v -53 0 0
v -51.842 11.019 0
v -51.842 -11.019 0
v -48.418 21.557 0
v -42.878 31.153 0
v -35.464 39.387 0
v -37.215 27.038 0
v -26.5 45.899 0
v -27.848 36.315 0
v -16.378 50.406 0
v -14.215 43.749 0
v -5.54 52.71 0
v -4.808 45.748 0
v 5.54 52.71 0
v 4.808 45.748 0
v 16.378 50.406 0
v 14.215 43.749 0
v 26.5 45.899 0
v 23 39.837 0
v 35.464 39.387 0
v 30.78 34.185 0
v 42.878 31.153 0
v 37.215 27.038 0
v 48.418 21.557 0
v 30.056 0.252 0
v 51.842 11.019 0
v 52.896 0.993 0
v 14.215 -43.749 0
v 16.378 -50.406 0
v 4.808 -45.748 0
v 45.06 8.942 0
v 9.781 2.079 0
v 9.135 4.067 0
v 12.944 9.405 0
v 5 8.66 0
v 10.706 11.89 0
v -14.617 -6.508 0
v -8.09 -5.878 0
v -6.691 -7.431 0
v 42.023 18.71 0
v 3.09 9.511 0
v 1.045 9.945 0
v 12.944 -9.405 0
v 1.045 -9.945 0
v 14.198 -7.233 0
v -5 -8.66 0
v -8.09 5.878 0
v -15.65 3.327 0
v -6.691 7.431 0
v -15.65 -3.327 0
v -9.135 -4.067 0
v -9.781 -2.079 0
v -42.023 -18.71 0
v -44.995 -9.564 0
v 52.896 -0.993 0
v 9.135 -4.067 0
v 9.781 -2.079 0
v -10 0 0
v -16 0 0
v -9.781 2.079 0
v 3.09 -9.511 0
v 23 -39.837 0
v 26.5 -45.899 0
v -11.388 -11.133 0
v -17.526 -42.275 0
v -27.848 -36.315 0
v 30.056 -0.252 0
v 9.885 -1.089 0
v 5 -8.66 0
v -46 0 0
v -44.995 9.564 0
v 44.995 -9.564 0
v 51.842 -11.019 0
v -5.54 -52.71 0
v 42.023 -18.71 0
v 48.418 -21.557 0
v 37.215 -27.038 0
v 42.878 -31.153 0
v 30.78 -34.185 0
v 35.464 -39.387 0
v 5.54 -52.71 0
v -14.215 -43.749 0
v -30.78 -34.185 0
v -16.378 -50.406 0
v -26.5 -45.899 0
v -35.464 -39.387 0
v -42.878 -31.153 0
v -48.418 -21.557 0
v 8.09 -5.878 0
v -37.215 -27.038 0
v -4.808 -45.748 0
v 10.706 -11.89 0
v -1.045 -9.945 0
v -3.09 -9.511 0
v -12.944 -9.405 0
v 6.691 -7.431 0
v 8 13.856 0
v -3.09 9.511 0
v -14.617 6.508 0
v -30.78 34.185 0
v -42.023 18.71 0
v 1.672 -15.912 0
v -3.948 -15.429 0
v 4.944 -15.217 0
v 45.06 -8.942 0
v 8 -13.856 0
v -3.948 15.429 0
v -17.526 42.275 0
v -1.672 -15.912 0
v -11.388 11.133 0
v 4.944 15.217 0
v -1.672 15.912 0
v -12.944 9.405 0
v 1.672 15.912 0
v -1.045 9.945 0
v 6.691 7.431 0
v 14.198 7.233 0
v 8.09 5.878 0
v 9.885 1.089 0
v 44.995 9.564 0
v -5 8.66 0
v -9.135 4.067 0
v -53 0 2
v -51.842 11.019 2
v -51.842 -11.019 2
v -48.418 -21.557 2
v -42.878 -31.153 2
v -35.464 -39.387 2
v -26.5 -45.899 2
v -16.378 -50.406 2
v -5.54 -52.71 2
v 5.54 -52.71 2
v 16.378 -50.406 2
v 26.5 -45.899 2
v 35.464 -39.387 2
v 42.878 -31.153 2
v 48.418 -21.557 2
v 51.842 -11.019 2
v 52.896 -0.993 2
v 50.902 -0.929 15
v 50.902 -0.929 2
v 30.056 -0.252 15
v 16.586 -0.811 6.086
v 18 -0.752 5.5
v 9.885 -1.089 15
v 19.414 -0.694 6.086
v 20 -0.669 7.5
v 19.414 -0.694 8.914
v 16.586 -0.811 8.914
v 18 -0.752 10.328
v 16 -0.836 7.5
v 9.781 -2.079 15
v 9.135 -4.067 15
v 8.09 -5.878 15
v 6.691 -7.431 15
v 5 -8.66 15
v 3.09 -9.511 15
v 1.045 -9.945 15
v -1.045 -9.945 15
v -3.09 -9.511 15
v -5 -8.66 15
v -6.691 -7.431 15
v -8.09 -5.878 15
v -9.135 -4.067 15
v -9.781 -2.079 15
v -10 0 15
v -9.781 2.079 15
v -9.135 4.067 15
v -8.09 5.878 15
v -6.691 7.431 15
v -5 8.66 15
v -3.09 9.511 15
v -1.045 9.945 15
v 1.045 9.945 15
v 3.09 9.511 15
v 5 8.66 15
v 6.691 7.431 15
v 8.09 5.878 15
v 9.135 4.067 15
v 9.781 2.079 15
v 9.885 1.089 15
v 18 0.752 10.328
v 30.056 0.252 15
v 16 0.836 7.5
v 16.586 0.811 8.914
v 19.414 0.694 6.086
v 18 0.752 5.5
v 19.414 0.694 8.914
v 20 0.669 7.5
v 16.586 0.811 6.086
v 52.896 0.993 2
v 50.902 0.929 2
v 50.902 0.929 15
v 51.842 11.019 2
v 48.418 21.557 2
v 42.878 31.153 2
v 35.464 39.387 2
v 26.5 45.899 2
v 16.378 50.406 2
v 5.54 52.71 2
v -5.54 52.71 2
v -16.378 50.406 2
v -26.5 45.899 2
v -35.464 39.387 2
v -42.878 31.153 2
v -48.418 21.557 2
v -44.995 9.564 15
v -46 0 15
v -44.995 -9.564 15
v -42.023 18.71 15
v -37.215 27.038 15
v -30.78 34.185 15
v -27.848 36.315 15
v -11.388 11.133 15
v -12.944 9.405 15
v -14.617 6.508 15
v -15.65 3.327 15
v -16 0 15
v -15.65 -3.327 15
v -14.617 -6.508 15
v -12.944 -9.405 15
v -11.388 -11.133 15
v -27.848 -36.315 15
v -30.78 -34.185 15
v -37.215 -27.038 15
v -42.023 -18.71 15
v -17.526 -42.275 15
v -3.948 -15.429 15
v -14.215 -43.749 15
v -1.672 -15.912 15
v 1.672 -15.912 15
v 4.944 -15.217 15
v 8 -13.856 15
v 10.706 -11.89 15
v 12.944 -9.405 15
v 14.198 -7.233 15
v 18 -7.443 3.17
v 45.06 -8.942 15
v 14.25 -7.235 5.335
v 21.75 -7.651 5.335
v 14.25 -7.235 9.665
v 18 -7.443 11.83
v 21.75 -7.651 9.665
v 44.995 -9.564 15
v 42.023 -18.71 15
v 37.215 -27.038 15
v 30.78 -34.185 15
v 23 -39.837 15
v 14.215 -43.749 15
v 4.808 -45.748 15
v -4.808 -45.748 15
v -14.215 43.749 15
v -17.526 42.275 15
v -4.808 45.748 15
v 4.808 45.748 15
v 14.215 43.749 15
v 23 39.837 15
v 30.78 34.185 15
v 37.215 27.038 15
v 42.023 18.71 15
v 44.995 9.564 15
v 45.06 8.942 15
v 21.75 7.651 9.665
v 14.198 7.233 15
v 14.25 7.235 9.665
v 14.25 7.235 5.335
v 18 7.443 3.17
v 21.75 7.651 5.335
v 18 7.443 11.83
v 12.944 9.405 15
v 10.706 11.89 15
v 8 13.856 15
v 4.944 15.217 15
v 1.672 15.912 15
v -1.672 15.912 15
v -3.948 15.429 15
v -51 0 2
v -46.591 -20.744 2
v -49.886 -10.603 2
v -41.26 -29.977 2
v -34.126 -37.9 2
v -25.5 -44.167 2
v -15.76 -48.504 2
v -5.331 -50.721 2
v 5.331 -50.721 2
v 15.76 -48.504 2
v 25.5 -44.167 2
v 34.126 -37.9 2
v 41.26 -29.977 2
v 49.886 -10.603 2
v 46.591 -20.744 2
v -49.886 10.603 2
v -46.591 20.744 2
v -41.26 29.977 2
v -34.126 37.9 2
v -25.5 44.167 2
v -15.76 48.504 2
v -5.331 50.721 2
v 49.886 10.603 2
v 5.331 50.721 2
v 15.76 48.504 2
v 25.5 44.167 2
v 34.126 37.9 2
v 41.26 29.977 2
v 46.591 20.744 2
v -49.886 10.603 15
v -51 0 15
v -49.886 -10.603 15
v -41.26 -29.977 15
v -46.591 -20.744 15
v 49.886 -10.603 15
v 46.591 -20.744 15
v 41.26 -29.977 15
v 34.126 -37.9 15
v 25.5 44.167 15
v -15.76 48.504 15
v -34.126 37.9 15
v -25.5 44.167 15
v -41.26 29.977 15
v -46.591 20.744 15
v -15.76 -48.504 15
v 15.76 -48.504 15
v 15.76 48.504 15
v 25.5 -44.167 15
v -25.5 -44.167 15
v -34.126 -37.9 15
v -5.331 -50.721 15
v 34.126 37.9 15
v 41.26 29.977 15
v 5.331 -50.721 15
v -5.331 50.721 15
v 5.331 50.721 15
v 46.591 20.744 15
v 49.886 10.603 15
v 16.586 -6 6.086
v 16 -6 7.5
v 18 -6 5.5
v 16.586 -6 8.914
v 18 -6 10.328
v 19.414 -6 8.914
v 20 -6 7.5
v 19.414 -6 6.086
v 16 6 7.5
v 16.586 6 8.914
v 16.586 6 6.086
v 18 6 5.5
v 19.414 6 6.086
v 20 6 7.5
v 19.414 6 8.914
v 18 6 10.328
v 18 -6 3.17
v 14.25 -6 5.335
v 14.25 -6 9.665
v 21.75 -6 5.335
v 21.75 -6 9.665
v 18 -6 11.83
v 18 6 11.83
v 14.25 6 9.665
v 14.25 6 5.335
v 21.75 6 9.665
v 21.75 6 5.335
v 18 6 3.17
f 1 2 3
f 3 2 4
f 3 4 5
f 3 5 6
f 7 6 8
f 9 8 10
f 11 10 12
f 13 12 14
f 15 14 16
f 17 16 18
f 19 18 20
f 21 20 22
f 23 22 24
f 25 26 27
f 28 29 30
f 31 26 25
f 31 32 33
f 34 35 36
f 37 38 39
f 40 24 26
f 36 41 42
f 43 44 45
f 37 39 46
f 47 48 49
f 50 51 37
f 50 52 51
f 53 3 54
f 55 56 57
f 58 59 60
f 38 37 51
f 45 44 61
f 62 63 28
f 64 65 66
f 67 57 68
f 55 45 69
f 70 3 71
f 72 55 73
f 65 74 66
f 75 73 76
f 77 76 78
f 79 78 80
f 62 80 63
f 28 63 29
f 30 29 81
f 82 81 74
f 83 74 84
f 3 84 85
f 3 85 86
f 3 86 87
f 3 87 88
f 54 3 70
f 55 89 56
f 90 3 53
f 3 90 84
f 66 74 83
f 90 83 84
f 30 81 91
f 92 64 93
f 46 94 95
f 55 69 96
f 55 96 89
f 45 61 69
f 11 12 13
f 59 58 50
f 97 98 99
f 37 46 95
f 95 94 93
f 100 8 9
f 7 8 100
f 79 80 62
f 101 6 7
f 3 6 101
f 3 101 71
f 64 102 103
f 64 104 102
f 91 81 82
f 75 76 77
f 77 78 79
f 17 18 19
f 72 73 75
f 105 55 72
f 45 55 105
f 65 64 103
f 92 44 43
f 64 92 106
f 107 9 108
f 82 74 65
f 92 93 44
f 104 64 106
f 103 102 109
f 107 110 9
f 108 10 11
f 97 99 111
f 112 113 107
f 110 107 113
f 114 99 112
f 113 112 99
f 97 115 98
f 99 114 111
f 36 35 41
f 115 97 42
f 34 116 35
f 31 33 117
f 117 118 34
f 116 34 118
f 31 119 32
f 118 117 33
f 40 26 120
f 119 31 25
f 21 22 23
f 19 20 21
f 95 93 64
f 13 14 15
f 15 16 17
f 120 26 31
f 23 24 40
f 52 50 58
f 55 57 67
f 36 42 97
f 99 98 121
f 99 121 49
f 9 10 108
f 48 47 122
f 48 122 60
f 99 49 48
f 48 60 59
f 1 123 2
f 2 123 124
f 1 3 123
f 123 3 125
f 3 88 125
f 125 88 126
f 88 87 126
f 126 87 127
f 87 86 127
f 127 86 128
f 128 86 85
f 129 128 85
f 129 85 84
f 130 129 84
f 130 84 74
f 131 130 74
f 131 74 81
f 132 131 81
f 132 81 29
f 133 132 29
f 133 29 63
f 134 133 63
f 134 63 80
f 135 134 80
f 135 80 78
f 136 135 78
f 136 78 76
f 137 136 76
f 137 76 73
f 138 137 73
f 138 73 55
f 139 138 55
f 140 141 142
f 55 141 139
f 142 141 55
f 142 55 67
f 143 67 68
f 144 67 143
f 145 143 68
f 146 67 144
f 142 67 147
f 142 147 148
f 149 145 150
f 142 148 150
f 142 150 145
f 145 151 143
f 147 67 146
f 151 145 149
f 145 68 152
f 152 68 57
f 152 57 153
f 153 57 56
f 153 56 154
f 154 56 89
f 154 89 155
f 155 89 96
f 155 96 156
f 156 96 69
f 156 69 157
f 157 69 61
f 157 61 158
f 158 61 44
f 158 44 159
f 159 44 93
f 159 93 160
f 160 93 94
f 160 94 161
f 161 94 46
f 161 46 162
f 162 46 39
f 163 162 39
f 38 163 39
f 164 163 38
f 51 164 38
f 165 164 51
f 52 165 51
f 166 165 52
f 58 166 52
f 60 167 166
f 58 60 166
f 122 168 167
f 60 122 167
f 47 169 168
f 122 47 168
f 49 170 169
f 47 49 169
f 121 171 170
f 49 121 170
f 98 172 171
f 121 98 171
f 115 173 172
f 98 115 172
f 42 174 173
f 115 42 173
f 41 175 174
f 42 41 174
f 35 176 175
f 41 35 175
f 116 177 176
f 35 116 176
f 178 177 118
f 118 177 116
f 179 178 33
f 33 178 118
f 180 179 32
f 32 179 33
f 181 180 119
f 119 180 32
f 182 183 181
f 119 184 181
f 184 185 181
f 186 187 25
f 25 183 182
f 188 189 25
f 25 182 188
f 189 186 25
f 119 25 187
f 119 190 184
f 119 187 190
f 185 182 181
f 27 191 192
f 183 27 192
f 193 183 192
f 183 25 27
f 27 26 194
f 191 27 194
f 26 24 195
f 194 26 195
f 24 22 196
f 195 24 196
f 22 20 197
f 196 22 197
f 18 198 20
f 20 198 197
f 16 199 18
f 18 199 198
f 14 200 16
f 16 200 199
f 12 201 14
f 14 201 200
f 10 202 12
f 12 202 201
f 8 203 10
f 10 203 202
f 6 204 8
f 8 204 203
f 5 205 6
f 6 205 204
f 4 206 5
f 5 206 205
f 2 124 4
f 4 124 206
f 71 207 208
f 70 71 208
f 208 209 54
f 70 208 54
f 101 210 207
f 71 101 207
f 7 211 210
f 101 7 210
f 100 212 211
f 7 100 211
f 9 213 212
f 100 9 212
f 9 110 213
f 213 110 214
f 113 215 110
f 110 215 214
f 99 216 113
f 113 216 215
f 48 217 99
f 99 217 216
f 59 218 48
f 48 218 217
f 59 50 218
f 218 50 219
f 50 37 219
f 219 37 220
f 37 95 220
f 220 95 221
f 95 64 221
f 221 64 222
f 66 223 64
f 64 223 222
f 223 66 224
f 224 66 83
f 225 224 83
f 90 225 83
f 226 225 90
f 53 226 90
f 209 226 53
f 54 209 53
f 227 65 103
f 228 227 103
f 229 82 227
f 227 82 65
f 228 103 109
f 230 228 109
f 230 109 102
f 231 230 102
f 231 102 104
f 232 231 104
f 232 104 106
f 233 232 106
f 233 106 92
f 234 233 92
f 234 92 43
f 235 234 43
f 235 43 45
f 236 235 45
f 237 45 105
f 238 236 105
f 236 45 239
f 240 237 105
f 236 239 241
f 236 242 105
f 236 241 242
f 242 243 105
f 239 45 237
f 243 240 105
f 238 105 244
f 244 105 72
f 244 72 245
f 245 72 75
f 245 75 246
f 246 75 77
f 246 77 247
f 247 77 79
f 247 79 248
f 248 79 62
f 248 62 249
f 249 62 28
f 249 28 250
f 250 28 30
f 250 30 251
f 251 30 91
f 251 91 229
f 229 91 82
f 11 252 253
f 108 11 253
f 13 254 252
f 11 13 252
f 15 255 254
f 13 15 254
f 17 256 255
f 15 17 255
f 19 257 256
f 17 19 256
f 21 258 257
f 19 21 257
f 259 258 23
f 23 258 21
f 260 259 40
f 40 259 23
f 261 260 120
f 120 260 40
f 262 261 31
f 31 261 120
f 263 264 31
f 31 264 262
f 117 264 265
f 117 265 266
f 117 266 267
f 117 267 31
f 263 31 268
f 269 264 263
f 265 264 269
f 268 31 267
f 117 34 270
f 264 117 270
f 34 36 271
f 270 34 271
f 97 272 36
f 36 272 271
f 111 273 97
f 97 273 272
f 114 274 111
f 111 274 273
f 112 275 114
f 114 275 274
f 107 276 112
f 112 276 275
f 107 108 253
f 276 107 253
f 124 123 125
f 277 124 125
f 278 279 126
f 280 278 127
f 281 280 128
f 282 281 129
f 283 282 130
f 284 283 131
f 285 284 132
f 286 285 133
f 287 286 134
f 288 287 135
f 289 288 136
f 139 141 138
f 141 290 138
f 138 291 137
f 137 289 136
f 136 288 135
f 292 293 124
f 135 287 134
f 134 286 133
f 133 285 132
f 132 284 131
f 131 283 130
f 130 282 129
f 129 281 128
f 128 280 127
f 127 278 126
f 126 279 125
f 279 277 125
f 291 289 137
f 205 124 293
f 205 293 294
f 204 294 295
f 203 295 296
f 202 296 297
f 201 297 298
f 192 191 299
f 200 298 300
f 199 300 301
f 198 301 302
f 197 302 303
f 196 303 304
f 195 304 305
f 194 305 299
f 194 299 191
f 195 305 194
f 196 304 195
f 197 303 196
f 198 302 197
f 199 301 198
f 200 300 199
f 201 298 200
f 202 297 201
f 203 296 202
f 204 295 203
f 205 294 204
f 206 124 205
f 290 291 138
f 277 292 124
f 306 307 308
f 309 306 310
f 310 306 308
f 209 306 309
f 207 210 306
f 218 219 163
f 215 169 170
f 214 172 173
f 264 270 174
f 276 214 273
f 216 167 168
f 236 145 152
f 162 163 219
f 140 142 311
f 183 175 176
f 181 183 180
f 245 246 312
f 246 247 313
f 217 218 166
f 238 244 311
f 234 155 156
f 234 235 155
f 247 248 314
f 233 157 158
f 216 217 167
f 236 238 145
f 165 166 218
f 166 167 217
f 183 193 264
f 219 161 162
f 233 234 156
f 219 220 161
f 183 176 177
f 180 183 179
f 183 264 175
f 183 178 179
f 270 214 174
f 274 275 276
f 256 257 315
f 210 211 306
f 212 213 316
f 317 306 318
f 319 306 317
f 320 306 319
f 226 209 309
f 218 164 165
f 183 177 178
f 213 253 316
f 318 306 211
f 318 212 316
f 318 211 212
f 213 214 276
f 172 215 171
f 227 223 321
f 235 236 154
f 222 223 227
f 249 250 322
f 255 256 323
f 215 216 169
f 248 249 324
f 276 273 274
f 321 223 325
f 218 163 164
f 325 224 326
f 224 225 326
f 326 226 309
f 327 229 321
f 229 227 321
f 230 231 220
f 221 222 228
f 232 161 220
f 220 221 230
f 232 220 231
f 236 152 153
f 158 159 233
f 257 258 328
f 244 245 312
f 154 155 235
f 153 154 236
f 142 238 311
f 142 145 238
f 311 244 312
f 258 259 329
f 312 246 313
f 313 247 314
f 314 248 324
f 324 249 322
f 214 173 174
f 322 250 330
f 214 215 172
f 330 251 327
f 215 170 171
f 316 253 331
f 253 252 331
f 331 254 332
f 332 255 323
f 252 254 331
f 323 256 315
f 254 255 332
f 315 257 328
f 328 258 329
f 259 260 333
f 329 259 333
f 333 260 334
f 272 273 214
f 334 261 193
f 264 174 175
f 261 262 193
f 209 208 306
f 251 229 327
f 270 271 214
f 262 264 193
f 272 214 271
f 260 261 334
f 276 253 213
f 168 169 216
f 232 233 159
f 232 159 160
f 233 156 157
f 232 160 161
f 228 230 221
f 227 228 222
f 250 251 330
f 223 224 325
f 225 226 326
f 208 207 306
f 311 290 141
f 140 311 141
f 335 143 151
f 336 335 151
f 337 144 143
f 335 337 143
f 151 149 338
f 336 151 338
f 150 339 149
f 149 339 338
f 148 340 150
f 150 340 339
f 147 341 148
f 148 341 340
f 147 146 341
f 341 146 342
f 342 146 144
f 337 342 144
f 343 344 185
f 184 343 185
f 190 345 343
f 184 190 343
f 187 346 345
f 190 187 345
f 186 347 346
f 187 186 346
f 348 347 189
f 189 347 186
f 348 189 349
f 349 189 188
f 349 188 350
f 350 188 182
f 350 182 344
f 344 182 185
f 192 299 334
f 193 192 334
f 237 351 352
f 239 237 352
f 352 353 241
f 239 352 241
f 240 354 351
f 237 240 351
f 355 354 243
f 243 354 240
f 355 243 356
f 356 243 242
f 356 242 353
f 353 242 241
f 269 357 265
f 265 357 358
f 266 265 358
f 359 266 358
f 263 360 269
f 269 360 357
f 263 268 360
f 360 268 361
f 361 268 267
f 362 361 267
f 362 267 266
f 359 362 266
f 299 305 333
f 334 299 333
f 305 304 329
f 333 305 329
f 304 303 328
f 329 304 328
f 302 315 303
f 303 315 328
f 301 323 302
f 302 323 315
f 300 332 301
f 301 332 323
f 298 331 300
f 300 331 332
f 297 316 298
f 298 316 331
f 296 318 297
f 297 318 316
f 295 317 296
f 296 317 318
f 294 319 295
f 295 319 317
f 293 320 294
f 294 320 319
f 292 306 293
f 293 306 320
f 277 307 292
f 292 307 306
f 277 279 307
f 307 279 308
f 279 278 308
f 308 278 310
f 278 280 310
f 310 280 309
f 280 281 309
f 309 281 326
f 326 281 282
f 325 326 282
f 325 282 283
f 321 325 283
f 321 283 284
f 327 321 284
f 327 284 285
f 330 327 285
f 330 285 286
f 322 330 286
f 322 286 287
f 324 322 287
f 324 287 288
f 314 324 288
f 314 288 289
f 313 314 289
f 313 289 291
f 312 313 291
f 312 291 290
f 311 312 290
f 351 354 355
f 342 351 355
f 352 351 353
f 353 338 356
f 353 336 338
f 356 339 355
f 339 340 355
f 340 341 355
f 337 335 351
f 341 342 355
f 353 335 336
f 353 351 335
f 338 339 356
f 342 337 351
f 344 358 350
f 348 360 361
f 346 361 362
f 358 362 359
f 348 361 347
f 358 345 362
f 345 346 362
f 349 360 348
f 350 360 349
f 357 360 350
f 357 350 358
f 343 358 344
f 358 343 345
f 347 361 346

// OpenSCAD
// Lampstand bracket

r1 = 20/2;     // Central hole
r2 = 32/2;     // Hub outer
r3 = 102/2-5;  // Rim inner
r4 = 102/2;    // Rim outer
r5 = 53;       // Flange outer
r6 = 30;       // Clamp elbow

to = 15;  // Thickness overall
tf = 2;   // Tickness flange
d  = 0.1; // delta

module tube(r1, r2, t)
{
  difference()
  {
    cylinder(r=r2, h=t);
    translate([0,0,-d/2])
      cylinder(r=r1, h=t+d);
  }
}

module spoke(ri, ro, t, wh, wr, a)
{
  rotate([0,0,a])
  {
    linear_extrude(height=t, twist=0)
    {
      polygon([[ri,-wh/2],
               [ri, wh/2],
               [ro, wr/2],
               [ro,-wr/2],
               [ri,-wh/2]]);
    }
  }
}

module teardropY(x, y1, y2, z, r)
{
  h = y2-y1;
  translate([x,y2,z])
  {
    rotate([90,0,0])
    {
      cylinder(r=r,h=h, $fn=8);
      rotate([0,0,45])
        cube(size=[r, r, h]) ;
    }
  }
}

// Vertical nut recess with base of nut centred on origin 
//
// af = nut size accross faces
// oh = overall height of recess
module nutrecessZ(oh, af)
{
  sin60 = sin(60);
  rotate([0,0,90])
  {
    cylinder(r=af/sin60/2, h=oh, $fn=6);
  }
}

module nutrecessY(x, y1, y2, z, af)
{
  translate([x,y2,z])
    rotate([90,0,0])
      nutrecessZ(y2-y1, af);
}

module bracket()
{
  difference()
  {
    union()
    {
      tube(r1, r2, to);  // Hub
      tube(r3, r4, to);  // Rim
      tube(r3, r5, tf);  // Flange
      spoke(r1, r3+d, to, 8, 12, 120);
      spoke(r1, r3+d, to, 8, 12, 240);
      spoke(r1, r3+d, to, 14, 18,  0);
    }
    translate([0,0,-d/2])
    {
      spoke(0,  r6+d, to+d, 3,   0.5, 0); 
      spoke(r6, r5+d, to+d, 0.5, 2,   0); 
    }
    teardropY(r2+2,  -8,  8, to/2, 2);
    nutrecessY(r2+2, -9, -6, to/2, 7.5);
    nutrecessY(r2+2,  6,  9, to/2, 7.5);
  }
}

bracket();
